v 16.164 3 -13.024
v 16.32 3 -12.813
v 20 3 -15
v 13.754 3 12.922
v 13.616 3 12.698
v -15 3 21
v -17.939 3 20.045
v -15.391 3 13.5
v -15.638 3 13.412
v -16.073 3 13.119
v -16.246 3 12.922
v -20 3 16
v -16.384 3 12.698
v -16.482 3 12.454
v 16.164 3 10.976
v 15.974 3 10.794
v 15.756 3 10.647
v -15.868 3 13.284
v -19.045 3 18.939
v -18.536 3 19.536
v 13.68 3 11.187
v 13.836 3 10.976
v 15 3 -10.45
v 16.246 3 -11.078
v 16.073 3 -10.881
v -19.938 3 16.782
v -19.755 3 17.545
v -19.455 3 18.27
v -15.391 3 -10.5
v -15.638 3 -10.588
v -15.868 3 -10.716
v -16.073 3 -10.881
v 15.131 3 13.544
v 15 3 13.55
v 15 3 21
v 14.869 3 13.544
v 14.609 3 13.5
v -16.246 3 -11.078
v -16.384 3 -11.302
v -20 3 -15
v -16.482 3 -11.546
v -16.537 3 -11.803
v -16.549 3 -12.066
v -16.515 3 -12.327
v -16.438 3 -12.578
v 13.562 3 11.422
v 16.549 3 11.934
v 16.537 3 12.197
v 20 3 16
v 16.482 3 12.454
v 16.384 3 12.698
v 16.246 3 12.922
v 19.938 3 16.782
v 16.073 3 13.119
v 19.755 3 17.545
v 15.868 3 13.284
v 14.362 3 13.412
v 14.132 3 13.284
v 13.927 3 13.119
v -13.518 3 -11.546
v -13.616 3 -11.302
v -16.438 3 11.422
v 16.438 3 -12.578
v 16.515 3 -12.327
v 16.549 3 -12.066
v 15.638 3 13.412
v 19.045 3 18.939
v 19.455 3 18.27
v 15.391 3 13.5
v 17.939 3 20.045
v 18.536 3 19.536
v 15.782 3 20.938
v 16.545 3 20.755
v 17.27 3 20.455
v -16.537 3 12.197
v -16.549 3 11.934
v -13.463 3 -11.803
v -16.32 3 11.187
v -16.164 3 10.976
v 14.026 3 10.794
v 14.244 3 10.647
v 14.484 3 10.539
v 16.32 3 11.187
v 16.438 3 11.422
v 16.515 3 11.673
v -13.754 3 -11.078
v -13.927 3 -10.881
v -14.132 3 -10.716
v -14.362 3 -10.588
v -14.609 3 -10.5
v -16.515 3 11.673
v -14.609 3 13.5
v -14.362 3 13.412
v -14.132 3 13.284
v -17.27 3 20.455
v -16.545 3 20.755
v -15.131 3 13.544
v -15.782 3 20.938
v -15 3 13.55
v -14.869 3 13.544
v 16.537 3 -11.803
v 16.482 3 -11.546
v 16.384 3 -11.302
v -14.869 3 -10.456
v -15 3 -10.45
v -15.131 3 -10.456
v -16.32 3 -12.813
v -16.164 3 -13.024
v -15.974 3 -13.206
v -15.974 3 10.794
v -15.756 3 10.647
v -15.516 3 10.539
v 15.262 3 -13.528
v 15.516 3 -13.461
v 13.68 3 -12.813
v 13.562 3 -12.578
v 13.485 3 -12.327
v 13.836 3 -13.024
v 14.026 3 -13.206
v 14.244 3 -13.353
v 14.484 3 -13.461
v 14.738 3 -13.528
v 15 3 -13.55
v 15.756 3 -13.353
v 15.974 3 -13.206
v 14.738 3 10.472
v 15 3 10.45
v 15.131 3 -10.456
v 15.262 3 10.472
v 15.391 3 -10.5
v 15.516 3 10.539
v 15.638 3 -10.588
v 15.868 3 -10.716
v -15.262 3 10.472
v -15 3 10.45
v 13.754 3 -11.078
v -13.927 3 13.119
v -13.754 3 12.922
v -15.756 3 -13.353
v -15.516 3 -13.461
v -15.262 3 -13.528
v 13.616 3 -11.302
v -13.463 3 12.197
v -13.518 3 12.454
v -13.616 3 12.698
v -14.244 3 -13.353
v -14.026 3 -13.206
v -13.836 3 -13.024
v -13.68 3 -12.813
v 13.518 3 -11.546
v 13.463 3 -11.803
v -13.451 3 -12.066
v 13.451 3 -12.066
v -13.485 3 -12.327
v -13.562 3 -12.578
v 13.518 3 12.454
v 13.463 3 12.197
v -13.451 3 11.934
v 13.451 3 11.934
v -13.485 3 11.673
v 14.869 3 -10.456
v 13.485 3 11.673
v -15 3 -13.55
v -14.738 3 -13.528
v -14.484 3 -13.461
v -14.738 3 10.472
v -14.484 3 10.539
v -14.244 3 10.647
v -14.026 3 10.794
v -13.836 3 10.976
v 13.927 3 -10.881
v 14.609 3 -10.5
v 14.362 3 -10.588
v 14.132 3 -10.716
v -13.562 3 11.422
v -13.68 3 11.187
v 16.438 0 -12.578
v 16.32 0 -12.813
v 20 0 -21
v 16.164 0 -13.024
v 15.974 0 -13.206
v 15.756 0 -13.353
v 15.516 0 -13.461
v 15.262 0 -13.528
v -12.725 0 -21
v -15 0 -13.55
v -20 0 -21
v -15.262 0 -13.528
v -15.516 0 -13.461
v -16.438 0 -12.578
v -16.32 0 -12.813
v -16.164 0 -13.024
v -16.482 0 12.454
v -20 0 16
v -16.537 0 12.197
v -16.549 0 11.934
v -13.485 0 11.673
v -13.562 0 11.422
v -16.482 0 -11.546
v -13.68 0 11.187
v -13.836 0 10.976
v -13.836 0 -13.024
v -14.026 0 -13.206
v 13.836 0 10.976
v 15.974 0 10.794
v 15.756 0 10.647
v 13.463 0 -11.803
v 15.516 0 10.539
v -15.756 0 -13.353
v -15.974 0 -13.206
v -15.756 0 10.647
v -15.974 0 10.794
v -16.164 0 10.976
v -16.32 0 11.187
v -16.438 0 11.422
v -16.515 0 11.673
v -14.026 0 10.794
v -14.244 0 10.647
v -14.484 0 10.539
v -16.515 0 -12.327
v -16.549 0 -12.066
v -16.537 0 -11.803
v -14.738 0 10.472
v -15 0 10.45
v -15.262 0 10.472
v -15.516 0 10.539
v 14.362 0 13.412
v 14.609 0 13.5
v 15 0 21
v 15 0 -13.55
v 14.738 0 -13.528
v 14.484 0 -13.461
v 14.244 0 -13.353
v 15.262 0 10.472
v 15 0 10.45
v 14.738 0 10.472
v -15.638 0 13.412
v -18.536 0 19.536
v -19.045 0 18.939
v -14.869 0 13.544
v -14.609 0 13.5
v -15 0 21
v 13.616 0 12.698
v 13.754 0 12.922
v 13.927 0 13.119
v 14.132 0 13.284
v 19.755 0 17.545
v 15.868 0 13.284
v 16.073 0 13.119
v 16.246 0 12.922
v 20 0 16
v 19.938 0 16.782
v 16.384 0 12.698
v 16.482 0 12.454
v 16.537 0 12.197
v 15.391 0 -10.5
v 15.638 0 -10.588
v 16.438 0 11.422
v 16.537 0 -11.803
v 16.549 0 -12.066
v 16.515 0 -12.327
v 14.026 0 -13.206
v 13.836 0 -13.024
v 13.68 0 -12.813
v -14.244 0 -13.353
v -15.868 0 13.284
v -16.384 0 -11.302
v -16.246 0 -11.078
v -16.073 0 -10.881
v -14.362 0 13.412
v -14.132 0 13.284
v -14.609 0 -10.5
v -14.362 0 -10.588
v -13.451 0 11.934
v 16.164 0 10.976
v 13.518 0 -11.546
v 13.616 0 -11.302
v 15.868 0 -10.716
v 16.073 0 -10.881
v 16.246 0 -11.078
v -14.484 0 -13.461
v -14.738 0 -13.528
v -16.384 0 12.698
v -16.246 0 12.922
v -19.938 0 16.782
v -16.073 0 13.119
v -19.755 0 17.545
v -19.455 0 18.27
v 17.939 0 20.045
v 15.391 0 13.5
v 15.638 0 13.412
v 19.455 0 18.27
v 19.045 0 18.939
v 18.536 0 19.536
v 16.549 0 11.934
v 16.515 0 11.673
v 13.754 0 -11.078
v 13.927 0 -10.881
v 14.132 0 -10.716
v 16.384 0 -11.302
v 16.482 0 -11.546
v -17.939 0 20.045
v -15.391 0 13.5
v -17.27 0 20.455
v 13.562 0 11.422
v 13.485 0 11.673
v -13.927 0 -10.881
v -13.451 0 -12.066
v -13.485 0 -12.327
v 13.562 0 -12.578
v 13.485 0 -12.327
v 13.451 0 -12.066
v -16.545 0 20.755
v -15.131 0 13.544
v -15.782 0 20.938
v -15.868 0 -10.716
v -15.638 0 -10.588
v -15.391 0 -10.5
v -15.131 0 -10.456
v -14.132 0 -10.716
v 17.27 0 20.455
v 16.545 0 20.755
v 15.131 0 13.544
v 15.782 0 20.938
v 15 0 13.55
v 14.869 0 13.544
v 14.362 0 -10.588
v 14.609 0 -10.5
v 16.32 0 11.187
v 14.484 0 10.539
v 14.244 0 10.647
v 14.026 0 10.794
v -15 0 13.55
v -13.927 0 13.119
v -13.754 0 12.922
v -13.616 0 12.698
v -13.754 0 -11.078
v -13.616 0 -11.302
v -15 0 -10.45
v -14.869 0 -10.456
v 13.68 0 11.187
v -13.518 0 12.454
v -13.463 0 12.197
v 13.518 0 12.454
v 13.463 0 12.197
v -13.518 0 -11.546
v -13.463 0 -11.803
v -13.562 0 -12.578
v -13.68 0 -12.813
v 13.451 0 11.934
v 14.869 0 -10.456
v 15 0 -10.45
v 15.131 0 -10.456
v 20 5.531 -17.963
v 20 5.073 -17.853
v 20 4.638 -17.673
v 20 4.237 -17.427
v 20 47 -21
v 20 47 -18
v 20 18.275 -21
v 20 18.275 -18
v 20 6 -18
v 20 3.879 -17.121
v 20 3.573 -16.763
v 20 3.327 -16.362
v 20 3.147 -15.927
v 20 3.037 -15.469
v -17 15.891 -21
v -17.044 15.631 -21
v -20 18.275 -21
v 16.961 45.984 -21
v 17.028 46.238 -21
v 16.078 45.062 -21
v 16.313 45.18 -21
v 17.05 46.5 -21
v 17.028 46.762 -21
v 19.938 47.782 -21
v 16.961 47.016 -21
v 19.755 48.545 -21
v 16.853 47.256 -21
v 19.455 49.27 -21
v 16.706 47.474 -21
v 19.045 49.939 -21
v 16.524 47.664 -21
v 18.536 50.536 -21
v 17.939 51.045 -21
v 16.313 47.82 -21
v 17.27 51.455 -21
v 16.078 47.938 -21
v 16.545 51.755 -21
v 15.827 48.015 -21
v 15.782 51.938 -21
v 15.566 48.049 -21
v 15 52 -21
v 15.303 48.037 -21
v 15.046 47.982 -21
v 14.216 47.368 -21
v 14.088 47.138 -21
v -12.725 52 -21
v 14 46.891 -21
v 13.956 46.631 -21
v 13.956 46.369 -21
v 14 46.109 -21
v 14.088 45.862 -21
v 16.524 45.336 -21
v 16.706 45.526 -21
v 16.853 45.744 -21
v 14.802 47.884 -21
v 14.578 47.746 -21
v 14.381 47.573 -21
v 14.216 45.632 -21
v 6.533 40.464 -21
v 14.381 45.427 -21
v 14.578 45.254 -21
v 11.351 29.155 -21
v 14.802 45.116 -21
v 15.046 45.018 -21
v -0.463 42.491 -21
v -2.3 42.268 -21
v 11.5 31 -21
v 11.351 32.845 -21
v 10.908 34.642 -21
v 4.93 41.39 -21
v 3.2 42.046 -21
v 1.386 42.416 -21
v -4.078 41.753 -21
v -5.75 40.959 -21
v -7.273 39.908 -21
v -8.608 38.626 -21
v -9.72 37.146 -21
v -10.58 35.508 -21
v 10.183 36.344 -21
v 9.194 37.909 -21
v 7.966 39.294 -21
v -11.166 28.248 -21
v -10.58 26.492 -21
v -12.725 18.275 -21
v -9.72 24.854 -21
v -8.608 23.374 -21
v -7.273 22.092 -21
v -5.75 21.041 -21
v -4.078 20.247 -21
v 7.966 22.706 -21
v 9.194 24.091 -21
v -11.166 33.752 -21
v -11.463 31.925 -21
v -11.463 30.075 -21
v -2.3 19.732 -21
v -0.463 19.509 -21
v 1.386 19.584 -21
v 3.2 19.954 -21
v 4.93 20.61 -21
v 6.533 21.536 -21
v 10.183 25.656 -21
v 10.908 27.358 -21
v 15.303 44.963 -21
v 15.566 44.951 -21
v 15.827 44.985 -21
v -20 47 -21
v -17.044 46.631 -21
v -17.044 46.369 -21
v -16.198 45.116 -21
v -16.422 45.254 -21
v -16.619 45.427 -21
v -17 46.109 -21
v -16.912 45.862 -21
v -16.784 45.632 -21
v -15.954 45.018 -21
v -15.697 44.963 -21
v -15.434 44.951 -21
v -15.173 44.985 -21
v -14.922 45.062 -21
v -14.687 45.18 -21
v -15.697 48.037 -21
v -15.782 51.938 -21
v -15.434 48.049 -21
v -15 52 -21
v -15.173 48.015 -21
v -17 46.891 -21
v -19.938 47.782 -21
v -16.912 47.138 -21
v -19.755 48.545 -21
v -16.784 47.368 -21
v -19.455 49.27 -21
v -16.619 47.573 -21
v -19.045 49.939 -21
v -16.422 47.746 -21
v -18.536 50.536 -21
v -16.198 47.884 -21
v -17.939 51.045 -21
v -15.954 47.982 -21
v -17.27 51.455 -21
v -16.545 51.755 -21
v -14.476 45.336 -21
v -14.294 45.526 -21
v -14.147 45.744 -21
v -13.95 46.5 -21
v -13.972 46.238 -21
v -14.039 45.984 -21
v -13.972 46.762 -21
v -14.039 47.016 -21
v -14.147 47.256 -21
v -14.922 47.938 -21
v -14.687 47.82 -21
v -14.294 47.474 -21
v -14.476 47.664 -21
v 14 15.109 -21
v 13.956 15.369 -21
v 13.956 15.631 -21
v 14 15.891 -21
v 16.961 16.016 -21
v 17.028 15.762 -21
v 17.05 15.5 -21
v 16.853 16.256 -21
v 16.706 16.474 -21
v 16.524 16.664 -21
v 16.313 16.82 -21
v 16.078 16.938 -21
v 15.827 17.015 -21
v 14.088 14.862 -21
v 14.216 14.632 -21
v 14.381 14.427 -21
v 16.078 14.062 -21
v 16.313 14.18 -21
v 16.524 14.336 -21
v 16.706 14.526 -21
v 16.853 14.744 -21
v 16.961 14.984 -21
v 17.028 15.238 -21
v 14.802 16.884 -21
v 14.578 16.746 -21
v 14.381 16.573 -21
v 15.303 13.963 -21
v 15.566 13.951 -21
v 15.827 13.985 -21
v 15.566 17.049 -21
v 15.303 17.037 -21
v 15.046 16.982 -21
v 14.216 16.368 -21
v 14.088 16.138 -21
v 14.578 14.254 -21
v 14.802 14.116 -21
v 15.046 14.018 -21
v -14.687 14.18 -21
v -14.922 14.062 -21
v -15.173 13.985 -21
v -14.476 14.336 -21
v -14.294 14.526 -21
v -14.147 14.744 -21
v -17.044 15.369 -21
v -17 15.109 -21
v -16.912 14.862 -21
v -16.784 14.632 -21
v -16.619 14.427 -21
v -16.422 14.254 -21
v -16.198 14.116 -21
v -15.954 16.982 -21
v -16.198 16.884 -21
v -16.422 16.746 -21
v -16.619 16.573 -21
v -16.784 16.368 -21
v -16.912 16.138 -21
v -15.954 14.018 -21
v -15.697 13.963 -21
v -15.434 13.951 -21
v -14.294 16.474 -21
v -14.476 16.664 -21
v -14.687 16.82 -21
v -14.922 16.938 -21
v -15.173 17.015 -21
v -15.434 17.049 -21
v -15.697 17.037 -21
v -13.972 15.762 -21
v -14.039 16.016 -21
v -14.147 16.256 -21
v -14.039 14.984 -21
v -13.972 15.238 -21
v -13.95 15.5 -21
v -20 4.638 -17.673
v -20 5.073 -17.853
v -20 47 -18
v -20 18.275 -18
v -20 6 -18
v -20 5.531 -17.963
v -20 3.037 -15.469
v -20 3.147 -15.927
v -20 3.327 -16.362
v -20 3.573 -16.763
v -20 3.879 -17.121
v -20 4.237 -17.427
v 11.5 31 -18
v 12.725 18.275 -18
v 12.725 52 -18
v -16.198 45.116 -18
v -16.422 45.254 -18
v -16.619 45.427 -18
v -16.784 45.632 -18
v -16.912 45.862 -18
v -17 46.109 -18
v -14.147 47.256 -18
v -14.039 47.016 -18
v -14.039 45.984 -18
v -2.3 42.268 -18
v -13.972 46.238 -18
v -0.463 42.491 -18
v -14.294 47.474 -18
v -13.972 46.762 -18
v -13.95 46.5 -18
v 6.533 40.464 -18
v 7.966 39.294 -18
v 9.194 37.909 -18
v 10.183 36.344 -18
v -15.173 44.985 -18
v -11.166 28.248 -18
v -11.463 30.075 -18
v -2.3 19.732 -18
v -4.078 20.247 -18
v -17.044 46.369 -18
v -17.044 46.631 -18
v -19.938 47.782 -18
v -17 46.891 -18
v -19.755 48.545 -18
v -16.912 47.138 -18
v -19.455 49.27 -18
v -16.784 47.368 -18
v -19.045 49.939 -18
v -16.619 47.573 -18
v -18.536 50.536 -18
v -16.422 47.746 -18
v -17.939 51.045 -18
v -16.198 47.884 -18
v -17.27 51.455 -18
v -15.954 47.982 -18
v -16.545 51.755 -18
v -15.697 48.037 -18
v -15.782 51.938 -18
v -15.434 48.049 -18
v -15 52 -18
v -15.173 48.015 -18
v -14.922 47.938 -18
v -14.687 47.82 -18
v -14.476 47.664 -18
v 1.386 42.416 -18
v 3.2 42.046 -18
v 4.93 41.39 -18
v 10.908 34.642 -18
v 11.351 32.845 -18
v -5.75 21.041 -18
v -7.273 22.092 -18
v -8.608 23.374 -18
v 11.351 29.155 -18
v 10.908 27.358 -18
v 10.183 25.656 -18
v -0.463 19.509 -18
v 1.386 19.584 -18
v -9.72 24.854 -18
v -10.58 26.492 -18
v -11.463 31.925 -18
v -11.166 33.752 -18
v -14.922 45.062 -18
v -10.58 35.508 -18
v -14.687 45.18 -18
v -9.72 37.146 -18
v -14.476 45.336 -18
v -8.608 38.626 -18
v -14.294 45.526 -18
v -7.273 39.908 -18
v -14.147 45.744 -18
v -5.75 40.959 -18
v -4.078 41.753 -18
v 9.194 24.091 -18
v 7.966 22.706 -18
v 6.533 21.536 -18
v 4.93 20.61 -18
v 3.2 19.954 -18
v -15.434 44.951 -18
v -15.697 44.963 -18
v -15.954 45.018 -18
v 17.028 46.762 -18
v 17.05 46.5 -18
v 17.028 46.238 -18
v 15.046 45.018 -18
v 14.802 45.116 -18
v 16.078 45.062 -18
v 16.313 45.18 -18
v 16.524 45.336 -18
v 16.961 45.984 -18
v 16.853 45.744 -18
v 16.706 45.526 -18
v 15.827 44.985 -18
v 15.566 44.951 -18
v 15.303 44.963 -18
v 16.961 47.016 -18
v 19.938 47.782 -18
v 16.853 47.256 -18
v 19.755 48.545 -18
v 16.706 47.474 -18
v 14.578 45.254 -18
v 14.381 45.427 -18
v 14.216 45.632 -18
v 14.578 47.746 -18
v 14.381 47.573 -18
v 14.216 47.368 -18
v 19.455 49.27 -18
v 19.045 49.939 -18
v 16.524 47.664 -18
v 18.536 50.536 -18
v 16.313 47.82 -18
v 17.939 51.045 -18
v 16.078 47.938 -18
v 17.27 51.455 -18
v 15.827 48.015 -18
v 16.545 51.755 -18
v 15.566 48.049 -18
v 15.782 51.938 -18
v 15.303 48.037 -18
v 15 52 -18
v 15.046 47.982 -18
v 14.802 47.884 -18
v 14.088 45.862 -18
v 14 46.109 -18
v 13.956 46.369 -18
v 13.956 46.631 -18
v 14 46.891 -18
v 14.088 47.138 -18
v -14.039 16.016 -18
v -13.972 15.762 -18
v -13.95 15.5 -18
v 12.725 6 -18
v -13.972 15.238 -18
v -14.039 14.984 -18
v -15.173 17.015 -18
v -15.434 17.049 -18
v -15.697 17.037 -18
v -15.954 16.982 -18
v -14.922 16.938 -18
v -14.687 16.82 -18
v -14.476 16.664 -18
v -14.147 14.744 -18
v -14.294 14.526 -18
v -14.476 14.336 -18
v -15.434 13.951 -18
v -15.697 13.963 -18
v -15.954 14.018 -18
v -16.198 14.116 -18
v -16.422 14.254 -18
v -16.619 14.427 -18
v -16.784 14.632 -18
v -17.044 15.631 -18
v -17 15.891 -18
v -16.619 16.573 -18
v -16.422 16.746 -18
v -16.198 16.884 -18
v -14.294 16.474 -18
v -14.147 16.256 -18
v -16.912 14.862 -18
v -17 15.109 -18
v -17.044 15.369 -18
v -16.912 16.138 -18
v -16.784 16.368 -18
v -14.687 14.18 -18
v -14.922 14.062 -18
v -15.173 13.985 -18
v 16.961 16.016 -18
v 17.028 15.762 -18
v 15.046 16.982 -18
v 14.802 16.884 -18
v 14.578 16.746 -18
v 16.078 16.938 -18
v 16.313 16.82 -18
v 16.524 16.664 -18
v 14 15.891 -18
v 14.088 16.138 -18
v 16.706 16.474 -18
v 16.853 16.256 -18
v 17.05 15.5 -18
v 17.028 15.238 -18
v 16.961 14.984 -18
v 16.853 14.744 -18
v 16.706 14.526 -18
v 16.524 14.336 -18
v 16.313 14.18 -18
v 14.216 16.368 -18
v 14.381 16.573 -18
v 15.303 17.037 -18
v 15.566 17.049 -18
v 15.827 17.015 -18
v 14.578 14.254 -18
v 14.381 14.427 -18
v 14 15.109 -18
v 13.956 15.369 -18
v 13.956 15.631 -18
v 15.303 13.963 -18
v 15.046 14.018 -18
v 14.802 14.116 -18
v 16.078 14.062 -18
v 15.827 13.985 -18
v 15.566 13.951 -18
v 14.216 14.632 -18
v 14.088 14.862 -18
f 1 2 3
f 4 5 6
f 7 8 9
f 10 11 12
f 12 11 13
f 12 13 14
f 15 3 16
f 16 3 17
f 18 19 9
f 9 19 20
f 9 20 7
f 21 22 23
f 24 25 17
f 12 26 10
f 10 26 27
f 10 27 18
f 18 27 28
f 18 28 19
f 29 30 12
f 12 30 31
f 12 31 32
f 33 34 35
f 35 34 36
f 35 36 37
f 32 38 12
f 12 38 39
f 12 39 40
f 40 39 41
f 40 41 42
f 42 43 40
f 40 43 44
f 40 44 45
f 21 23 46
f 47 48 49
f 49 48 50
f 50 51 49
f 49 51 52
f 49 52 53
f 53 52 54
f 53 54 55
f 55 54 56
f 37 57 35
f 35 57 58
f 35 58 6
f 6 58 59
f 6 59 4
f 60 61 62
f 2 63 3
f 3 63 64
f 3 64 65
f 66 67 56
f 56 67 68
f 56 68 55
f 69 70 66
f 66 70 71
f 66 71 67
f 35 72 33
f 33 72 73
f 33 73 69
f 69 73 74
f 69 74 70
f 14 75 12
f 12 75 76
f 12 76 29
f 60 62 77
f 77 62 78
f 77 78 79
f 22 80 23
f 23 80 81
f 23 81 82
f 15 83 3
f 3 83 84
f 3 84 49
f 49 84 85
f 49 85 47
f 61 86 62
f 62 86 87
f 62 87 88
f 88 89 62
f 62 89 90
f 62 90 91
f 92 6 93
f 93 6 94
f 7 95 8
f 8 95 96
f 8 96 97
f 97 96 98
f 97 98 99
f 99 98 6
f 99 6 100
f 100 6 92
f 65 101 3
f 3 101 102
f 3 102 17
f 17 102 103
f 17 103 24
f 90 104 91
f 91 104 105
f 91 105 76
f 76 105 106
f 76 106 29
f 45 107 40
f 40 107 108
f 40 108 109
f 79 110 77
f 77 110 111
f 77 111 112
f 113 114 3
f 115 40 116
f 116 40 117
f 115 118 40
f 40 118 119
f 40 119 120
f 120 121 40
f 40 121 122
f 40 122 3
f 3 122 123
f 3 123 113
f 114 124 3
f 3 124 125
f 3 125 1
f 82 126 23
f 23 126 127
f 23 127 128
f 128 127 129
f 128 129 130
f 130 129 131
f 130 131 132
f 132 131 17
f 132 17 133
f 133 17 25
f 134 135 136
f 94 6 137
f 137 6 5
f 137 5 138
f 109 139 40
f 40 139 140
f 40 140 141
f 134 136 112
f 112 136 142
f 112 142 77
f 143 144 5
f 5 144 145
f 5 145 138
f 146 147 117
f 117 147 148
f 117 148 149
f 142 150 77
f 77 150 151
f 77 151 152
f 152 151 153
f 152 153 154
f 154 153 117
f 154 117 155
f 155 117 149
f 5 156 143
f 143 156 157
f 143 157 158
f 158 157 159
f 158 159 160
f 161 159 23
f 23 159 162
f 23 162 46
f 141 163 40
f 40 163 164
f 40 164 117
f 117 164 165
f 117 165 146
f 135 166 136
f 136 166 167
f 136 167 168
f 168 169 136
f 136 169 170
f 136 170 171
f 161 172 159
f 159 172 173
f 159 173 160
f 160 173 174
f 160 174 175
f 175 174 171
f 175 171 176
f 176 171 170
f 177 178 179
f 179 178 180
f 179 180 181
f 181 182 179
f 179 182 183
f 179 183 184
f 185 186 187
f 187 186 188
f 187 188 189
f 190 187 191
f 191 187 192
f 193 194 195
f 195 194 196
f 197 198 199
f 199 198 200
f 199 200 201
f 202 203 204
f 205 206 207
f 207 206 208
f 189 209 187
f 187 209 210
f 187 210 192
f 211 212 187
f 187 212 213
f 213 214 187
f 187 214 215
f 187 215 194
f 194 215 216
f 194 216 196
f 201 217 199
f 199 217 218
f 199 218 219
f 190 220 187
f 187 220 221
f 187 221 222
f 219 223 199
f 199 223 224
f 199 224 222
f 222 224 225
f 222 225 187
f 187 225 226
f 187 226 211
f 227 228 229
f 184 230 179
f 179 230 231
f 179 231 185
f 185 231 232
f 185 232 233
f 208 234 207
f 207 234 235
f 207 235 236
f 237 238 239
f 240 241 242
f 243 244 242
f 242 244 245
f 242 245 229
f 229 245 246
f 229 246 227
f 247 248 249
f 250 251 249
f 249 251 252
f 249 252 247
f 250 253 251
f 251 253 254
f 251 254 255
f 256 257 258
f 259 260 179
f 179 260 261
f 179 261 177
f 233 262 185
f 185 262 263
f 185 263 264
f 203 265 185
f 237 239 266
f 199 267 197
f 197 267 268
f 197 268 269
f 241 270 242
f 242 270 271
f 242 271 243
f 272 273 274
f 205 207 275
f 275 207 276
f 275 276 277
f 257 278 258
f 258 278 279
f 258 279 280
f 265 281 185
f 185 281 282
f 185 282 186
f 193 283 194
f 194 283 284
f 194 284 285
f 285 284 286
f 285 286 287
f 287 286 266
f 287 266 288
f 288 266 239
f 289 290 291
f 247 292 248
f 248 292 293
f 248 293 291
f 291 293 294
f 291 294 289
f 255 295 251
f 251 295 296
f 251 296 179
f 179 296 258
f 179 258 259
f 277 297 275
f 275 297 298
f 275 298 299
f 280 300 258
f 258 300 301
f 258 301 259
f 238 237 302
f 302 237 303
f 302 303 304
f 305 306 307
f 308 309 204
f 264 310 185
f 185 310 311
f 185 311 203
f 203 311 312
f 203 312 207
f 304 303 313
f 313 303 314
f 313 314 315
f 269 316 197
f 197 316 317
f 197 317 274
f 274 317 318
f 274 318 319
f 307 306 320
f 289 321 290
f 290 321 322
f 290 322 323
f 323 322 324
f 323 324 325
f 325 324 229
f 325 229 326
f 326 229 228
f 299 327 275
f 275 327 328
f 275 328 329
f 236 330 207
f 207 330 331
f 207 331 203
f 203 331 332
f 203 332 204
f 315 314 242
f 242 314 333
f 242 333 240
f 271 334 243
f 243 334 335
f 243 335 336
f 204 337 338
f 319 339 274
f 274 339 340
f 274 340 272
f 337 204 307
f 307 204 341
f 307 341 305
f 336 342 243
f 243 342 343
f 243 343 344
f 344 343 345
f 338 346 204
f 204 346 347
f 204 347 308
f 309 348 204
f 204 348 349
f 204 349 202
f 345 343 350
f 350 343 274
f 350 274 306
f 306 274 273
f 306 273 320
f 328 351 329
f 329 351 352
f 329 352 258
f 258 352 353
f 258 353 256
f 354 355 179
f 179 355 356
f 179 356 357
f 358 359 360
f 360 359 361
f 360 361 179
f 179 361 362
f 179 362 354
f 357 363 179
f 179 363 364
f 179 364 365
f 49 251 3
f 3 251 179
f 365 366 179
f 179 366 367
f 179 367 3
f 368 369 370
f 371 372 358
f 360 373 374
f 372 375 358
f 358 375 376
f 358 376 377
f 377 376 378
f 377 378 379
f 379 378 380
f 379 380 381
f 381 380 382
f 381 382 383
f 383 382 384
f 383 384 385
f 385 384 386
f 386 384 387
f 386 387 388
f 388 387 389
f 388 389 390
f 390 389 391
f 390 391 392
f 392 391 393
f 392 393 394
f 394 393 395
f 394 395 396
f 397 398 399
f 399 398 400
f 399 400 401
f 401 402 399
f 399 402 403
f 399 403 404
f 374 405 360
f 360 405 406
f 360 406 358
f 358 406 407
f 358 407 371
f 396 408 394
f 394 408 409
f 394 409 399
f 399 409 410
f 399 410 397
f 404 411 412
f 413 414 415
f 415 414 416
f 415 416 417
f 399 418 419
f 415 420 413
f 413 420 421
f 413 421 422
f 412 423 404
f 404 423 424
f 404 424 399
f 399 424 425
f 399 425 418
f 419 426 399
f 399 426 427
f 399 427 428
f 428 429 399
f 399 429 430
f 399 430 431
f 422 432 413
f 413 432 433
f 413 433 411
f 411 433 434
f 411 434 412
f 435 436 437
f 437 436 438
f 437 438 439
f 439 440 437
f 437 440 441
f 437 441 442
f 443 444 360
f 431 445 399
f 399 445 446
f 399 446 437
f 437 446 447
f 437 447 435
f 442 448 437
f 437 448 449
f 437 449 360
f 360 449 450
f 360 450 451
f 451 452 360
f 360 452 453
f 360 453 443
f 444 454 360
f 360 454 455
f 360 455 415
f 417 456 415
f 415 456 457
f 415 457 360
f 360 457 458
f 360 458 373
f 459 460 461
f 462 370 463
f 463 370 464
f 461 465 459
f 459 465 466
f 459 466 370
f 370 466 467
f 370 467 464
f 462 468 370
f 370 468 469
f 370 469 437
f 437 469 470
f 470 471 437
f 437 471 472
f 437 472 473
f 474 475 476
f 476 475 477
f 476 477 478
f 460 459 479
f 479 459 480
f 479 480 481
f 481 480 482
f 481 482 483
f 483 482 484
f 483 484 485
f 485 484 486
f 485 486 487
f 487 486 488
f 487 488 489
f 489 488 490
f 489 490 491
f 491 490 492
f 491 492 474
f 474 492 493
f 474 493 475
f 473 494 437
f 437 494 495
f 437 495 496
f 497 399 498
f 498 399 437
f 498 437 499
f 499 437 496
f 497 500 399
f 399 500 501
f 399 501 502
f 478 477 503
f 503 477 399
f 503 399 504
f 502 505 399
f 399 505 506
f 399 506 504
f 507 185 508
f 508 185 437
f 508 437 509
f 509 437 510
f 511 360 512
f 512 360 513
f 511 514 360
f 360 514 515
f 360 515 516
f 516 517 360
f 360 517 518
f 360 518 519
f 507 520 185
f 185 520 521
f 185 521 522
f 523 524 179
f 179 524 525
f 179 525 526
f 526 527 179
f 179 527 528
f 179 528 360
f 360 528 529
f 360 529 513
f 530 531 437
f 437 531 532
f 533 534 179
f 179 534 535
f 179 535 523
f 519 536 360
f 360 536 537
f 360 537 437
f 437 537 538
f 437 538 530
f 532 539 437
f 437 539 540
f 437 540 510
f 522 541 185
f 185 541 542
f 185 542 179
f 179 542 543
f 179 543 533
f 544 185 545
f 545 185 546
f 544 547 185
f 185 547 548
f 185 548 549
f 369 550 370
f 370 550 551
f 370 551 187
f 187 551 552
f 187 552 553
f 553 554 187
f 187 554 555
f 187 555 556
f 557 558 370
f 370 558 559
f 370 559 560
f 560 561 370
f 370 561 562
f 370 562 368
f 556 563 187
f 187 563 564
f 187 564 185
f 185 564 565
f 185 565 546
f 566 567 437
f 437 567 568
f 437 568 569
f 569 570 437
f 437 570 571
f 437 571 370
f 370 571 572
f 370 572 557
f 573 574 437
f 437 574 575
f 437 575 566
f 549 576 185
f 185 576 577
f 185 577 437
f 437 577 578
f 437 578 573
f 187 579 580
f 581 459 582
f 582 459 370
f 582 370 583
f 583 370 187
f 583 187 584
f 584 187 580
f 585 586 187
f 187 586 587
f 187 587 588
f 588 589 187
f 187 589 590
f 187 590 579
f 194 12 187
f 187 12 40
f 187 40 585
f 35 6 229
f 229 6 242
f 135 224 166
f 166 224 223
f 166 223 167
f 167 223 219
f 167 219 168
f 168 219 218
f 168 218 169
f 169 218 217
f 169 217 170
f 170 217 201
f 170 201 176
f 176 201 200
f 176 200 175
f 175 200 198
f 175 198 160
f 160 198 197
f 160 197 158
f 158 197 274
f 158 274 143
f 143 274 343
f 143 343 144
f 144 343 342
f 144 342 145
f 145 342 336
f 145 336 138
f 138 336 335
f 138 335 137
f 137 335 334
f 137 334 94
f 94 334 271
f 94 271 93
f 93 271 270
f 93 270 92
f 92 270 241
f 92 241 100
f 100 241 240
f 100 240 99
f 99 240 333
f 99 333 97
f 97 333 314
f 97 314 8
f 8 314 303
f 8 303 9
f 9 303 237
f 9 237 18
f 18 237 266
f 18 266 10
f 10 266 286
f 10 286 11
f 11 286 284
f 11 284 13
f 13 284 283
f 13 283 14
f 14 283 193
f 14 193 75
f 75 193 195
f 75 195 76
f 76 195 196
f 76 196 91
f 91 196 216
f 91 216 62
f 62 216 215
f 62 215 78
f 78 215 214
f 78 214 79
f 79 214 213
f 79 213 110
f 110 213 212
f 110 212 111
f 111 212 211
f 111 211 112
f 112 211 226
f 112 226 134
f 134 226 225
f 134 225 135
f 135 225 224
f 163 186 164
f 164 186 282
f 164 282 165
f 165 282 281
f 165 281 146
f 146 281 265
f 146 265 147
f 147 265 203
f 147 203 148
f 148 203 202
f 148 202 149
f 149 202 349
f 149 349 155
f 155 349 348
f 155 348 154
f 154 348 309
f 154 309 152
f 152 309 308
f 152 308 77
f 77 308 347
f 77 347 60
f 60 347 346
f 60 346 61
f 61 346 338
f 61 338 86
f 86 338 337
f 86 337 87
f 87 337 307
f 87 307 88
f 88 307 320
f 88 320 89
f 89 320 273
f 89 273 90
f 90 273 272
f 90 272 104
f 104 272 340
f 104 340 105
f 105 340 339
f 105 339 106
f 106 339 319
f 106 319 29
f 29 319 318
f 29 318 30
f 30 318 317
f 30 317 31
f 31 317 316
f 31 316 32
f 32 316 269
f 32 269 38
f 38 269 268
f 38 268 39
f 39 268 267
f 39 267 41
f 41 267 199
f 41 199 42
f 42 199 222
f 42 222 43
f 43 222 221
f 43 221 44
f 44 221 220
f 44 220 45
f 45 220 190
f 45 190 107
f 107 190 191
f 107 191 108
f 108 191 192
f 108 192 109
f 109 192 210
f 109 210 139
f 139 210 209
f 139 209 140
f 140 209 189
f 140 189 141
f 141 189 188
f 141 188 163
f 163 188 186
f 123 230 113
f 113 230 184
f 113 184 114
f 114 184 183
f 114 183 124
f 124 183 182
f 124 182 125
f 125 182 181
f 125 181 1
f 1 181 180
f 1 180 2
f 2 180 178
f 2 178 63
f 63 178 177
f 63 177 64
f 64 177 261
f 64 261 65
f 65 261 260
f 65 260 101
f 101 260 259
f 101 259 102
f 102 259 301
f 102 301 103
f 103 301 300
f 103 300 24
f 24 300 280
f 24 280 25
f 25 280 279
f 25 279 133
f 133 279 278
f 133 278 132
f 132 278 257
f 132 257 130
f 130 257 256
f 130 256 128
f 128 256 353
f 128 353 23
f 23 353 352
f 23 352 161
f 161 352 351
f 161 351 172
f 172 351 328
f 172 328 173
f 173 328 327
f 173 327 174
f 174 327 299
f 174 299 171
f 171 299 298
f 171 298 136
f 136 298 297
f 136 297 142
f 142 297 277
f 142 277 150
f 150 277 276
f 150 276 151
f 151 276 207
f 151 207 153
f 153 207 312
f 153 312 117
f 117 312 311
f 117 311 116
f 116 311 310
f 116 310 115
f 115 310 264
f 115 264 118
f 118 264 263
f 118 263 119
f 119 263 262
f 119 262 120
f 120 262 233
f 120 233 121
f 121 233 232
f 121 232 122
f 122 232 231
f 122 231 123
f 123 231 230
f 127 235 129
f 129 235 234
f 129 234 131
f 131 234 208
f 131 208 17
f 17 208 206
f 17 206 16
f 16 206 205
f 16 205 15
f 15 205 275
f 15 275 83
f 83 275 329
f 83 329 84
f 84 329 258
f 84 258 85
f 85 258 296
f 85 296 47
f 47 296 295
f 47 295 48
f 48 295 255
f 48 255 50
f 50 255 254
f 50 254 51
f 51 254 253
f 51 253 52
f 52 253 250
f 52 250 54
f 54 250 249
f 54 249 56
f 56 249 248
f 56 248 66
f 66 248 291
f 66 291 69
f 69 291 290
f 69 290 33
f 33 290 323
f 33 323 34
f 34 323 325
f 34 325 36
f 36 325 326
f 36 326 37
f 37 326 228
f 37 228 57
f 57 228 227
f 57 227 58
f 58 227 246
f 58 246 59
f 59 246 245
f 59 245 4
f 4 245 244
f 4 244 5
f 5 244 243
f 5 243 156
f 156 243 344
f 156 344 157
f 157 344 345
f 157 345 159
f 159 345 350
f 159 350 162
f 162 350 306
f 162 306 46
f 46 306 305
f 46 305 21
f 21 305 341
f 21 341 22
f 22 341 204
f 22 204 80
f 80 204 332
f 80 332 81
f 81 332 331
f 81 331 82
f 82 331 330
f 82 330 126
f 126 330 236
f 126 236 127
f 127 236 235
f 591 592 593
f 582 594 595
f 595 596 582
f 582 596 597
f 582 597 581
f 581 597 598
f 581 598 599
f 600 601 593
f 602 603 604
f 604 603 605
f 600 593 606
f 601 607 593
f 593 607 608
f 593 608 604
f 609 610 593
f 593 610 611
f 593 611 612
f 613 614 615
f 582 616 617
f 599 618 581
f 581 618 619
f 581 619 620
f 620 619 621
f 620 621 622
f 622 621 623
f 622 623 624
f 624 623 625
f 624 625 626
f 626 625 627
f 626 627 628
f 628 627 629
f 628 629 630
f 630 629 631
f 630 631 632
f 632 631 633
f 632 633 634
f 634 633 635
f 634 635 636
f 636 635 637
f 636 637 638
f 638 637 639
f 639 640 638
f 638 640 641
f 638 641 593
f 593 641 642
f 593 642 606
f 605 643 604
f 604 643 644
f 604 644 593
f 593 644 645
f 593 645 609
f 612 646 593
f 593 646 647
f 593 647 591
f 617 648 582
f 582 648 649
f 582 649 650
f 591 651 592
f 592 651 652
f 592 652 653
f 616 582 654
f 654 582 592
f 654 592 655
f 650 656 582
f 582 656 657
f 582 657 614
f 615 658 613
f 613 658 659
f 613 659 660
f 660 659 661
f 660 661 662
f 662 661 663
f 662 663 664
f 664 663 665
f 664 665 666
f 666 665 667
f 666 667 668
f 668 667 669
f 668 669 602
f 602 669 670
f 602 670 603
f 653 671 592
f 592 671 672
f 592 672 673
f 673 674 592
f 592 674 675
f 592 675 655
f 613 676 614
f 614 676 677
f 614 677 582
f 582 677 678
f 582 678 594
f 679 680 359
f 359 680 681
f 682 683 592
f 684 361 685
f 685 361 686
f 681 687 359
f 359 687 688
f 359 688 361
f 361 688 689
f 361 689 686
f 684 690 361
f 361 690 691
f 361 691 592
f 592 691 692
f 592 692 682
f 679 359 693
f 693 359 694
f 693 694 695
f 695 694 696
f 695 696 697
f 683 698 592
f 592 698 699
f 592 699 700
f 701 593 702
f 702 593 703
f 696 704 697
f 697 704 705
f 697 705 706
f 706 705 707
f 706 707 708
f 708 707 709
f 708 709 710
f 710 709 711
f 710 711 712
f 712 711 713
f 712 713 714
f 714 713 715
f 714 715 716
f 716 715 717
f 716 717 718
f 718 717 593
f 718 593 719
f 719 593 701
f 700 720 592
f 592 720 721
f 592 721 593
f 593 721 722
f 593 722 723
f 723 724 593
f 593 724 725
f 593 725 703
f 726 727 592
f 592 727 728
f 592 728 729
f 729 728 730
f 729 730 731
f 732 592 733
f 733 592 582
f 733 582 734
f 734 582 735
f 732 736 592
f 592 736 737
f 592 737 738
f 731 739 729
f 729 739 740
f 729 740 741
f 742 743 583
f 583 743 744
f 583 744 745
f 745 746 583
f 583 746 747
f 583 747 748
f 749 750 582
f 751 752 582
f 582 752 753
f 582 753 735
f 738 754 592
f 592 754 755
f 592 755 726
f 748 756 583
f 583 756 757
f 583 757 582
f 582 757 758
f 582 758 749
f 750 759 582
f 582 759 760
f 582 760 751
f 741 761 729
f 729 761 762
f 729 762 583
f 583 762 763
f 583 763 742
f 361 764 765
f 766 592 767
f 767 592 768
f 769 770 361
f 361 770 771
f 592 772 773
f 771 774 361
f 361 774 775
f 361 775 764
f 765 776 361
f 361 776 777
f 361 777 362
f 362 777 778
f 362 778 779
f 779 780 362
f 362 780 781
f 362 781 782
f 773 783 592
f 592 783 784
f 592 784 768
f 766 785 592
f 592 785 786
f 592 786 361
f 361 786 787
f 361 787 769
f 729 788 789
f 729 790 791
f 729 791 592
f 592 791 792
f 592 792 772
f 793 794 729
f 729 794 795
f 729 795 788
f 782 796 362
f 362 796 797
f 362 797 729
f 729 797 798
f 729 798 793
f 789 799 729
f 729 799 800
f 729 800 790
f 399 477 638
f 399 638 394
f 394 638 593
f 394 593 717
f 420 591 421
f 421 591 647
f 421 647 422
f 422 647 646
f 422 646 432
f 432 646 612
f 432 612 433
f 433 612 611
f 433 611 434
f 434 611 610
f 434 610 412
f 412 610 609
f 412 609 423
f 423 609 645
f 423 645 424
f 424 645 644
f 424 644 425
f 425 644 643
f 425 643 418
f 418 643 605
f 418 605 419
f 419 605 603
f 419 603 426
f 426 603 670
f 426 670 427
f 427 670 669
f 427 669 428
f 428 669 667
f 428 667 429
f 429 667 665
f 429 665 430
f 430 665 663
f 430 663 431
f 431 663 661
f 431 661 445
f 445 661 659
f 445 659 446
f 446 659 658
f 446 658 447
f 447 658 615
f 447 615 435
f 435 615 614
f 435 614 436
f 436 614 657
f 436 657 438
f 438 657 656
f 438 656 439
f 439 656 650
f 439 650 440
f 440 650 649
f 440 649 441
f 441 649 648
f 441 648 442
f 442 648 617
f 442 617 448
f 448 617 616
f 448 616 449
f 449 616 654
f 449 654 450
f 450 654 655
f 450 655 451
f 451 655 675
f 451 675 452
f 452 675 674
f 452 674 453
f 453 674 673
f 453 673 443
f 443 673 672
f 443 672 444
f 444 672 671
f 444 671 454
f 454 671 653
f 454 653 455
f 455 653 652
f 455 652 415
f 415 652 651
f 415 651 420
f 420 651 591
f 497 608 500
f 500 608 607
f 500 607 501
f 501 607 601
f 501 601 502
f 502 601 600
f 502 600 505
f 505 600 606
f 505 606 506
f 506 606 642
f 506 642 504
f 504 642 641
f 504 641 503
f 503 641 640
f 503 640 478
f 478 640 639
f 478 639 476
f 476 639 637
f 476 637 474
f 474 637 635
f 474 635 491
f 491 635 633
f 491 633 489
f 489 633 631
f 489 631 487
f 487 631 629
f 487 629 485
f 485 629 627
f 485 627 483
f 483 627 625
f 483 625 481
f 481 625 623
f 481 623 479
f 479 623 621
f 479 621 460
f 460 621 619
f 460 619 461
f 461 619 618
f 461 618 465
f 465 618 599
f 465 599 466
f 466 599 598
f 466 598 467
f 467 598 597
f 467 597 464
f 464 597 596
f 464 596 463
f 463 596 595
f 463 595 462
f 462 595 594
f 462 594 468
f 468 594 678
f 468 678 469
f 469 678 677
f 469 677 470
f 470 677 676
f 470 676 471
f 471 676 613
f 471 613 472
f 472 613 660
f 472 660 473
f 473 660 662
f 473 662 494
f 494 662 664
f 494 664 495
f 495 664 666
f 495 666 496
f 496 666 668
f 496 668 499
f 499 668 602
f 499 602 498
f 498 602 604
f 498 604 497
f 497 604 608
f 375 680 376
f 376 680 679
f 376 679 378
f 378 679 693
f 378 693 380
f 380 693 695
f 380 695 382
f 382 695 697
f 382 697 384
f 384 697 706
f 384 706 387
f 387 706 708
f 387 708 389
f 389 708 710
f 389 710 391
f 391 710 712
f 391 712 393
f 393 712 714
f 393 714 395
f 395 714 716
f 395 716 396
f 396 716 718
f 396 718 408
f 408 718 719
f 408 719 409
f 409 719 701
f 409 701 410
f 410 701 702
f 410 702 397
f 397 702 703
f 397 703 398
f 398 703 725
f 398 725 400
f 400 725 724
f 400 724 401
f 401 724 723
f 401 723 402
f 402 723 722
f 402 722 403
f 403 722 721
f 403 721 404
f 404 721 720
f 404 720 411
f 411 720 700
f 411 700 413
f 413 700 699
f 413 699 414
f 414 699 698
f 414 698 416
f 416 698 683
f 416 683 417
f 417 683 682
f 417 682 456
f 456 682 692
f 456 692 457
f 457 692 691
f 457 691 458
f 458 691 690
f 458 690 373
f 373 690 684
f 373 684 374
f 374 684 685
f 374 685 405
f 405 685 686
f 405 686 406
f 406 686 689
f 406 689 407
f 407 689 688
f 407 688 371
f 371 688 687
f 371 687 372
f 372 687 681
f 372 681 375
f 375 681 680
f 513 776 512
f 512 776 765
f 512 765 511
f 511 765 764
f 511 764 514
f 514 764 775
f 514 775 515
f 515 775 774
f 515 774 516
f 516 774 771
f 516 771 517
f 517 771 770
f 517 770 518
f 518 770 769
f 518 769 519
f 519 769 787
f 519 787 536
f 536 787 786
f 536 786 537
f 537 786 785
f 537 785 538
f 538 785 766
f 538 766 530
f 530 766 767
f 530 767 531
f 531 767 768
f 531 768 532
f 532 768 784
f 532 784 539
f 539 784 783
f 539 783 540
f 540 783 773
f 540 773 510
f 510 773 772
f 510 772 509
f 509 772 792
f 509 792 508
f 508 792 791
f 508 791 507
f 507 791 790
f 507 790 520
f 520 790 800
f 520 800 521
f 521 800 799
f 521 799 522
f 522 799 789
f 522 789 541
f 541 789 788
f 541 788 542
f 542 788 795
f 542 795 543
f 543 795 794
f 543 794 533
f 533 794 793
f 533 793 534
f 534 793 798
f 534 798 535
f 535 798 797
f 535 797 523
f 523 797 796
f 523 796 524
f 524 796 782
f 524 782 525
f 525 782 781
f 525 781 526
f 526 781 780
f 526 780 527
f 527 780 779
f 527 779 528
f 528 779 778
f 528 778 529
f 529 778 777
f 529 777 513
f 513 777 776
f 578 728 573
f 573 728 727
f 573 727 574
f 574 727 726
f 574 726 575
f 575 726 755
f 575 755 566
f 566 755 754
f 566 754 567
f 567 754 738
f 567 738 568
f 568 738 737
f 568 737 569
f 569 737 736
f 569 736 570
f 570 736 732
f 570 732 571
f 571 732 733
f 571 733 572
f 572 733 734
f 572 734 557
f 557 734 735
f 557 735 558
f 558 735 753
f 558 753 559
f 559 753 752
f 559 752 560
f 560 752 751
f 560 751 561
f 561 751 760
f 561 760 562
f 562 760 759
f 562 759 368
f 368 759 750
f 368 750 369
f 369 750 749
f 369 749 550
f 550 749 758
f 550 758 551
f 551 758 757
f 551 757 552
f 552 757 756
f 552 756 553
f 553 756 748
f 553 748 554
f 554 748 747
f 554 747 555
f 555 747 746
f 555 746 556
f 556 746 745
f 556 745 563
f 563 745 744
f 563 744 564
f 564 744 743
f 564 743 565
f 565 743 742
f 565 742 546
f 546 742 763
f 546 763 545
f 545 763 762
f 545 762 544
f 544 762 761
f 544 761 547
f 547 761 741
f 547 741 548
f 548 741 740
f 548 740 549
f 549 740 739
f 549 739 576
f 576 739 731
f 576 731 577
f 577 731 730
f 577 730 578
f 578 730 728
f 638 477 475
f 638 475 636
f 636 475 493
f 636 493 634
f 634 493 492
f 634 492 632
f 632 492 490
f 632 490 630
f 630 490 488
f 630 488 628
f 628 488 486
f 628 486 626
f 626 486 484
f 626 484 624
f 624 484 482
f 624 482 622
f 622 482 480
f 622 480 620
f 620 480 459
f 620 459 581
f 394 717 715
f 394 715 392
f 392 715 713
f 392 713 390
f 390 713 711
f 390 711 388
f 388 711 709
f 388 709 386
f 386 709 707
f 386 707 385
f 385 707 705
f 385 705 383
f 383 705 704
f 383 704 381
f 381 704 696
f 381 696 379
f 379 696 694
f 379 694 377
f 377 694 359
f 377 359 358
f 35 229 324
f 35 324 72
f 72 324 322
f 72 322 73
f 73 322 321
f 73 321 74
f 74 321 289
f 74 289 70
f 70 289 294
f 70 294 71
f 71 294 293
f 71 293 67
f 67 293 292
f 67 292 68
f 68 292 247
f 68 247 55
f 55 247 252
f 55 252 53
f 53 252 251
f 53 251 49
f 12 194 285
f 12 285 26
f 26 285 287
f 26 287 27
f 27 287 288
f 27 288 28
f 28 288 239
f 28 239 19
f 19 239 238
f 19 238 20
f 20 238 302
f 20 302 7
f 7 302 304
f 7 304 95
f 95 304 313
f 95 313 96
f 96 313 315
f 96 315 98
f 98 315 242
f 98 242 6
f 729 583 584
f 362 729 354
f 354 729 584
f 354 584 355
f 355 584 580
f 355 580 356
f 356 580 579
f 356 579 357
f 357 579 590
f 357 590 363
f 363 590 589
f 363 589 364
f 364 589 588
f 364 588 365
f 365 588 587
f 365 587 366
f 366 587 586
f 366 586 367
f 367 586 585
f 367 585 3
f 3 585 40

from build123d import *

# Parameters (mm, degrees)
SKETCH_1_W          = 40
SKETCH_1_H          = 42
SKETCH_1_R          = 1.55
EXTRUDE_1_DEPTH     = 3
SKETCH_2_W          = 40
SKETCH_2_H          = 3
EXTRUDE_2_DEPTH     = 49
SKETCH_3_R          = 11.5
SKETCH_3_R_2        = 1.55
CUT_EXTRUDE_1_DEPTH = 49
FILLET_1_R          = 5
FILLET_2_R          = 3


with BuildPart() as part:
    # 草图1 → 凸台-拉伸1 (new body)
    with BuildSketch(Plane(origin=(0, 0, 0), x_dir=(1, 0, 0), z_dir=(0, 1, 0))):
        Rectangle(SKETCH_1_W, SKETCH_1_H)
        with Locations(Location((-15, -12, 0), (0, 0, 270))):
            Circle(SKETCH_1_R, mode=Mode.SUBTRACT)
        with Locations(Location((-15, 12, 0), (0, 0, 270))):
            Circle(SKETCH_1_R, mode=Mode.SUBTRACT)
        with Locations(Location((15, 12, 0), (0, 0, 270))):
            Circle(SKETCH_1_R, mode=Mode.SUBTRACT)
        with Locations(Location((15, -12, 0), (0, 0, 270))):
            Circle(SKETCH_1_R, mode=Mode.SUBTRACT)
    extrude(amount=EXTRUDE_1_DEPTH)

    # 草图2 → 凸台-拉伸2 (add)
    with BuildSketch(Plane(origin=(0, 3, 0), x_dir=(1, 0, 0), z_dir=(0, 1, 0))):
        with Locations((0, 19.5)):
            Rectangle(SKETCH_2_W, SKETCH_2_H)
    extrude(amount=EXTRUDE_2_DEPTH)

    # 草图3 → 切除-拉伸1 (cut)
    with BuildSketch(Plane.XY.offset(-18)):
        with Locations((0, 31)):
            Circle(SKETCH_3_R)
        with Locations((-15.5, 46.5)):
            Circle(SKETCH_3_R_2)
        with Locations((15.5, 46.5)):
            Circle(SKETCH_3_R_2)
        with Locations((15.5, 15.5)):
            Circle(SKETCH_3_R_2)
        with Locations((-15.5, 15.5)):
            Circle(SKETCH_3_R_2)
    extrude(amount=-CUT_EXTRUDE_1_DEPTH, mode=Mode.SUBTRACT)

    # 圆角1
    fillet_1_edges = [part.edges().sort_by_distance(p)[0] for p in [
        (-20, 52, -19.5),
        (20, 52, -19.5),
        (20, 1.5, 21),
        (-20, 1.5, 21),
    ]]
    fillet(fillet_1_edges, radius=FILLET_1_R)

    # 圆角2
    fillet_2_edges = [part.edges().sort_by_distance(p)[0] for p in [
        (0, 3, -18),
    ]]
    fillet(fillet_2_edges, radius=FILLET_2_R)


solid = part.part
